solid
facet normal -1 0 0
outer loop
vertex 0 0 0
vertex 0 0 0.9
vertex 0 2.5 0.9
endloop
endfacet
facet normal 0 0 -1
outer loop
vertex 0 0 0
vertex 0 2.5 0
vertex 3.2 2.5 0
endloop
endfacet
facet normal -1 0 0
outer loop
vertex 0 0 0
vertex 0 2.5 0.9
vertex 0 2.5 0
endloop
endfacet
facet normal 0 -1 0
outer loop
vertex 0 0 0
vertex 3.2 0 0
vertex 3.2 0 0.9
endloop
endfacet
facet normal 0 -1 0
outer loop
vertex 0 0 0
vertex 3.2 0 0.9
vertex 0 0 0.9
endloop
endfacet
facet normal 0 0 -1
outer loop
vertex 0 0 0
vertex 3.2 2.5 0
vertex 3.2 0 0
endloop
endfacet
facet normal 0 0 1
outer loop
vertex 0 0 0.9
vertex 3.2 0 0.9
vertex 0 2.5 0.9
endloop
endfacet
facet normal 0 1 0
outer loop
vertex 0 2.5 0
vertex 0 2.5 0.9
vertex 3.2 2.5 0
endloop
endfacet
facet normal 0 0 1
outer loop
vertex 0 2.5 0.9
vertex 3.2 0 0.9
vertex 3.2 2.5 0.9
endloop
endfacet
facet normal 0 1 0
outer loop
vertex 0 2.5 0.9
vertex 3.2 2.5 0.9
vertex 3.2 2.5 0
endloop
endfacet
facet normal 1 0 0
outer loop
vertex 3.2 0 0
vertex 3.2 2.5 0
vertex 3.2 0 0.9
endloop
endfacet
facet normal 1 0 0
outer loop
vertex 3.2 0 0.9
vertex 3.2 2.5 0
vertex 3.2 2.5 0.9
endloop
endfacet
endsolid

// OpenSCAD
/* Warning, this is a very basic generator with a lot of approximation 
input data : [VELGA, 2KW, 3.2x2.5x0.9mm, 4, , A, C04-00545A]
generated by com.zoubworld.electronics.cad.model3d.Basic
Date : Sun Feb 15 10:50:48 CET 2026
*/

//body
color("black")
translate([0,0,0])
cube([3.2,2.5,0.9], center=false);
